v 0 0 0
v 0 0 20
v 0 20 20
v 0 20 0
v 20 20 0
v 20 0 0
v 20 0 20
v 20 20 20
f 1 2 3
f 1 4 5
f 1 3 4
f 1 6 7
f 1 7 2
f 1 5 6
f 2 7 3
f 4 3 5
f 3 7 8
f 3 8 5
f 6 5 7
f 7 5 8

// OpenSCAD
// 8 small cubes (1cm each) arranged in a 2x2x2 checkerboard of pink and purple

size = 10; // 1cm in mm

module small_cube(is_pink) {
    color(is_pink ? "DeepPink" : "Purple")
        cube([size, size, size]);
}

// 2x2x2 checkerboard: adjacent cubes always differ in color
// pink when (x+y+z) is even, purple when odd
for (x = [0:1], y = [0:1], z = [0:1]) {
    translate([x * size, y * size, z * size])
        small_cube((x + y + z) % 2 == 0);
}
